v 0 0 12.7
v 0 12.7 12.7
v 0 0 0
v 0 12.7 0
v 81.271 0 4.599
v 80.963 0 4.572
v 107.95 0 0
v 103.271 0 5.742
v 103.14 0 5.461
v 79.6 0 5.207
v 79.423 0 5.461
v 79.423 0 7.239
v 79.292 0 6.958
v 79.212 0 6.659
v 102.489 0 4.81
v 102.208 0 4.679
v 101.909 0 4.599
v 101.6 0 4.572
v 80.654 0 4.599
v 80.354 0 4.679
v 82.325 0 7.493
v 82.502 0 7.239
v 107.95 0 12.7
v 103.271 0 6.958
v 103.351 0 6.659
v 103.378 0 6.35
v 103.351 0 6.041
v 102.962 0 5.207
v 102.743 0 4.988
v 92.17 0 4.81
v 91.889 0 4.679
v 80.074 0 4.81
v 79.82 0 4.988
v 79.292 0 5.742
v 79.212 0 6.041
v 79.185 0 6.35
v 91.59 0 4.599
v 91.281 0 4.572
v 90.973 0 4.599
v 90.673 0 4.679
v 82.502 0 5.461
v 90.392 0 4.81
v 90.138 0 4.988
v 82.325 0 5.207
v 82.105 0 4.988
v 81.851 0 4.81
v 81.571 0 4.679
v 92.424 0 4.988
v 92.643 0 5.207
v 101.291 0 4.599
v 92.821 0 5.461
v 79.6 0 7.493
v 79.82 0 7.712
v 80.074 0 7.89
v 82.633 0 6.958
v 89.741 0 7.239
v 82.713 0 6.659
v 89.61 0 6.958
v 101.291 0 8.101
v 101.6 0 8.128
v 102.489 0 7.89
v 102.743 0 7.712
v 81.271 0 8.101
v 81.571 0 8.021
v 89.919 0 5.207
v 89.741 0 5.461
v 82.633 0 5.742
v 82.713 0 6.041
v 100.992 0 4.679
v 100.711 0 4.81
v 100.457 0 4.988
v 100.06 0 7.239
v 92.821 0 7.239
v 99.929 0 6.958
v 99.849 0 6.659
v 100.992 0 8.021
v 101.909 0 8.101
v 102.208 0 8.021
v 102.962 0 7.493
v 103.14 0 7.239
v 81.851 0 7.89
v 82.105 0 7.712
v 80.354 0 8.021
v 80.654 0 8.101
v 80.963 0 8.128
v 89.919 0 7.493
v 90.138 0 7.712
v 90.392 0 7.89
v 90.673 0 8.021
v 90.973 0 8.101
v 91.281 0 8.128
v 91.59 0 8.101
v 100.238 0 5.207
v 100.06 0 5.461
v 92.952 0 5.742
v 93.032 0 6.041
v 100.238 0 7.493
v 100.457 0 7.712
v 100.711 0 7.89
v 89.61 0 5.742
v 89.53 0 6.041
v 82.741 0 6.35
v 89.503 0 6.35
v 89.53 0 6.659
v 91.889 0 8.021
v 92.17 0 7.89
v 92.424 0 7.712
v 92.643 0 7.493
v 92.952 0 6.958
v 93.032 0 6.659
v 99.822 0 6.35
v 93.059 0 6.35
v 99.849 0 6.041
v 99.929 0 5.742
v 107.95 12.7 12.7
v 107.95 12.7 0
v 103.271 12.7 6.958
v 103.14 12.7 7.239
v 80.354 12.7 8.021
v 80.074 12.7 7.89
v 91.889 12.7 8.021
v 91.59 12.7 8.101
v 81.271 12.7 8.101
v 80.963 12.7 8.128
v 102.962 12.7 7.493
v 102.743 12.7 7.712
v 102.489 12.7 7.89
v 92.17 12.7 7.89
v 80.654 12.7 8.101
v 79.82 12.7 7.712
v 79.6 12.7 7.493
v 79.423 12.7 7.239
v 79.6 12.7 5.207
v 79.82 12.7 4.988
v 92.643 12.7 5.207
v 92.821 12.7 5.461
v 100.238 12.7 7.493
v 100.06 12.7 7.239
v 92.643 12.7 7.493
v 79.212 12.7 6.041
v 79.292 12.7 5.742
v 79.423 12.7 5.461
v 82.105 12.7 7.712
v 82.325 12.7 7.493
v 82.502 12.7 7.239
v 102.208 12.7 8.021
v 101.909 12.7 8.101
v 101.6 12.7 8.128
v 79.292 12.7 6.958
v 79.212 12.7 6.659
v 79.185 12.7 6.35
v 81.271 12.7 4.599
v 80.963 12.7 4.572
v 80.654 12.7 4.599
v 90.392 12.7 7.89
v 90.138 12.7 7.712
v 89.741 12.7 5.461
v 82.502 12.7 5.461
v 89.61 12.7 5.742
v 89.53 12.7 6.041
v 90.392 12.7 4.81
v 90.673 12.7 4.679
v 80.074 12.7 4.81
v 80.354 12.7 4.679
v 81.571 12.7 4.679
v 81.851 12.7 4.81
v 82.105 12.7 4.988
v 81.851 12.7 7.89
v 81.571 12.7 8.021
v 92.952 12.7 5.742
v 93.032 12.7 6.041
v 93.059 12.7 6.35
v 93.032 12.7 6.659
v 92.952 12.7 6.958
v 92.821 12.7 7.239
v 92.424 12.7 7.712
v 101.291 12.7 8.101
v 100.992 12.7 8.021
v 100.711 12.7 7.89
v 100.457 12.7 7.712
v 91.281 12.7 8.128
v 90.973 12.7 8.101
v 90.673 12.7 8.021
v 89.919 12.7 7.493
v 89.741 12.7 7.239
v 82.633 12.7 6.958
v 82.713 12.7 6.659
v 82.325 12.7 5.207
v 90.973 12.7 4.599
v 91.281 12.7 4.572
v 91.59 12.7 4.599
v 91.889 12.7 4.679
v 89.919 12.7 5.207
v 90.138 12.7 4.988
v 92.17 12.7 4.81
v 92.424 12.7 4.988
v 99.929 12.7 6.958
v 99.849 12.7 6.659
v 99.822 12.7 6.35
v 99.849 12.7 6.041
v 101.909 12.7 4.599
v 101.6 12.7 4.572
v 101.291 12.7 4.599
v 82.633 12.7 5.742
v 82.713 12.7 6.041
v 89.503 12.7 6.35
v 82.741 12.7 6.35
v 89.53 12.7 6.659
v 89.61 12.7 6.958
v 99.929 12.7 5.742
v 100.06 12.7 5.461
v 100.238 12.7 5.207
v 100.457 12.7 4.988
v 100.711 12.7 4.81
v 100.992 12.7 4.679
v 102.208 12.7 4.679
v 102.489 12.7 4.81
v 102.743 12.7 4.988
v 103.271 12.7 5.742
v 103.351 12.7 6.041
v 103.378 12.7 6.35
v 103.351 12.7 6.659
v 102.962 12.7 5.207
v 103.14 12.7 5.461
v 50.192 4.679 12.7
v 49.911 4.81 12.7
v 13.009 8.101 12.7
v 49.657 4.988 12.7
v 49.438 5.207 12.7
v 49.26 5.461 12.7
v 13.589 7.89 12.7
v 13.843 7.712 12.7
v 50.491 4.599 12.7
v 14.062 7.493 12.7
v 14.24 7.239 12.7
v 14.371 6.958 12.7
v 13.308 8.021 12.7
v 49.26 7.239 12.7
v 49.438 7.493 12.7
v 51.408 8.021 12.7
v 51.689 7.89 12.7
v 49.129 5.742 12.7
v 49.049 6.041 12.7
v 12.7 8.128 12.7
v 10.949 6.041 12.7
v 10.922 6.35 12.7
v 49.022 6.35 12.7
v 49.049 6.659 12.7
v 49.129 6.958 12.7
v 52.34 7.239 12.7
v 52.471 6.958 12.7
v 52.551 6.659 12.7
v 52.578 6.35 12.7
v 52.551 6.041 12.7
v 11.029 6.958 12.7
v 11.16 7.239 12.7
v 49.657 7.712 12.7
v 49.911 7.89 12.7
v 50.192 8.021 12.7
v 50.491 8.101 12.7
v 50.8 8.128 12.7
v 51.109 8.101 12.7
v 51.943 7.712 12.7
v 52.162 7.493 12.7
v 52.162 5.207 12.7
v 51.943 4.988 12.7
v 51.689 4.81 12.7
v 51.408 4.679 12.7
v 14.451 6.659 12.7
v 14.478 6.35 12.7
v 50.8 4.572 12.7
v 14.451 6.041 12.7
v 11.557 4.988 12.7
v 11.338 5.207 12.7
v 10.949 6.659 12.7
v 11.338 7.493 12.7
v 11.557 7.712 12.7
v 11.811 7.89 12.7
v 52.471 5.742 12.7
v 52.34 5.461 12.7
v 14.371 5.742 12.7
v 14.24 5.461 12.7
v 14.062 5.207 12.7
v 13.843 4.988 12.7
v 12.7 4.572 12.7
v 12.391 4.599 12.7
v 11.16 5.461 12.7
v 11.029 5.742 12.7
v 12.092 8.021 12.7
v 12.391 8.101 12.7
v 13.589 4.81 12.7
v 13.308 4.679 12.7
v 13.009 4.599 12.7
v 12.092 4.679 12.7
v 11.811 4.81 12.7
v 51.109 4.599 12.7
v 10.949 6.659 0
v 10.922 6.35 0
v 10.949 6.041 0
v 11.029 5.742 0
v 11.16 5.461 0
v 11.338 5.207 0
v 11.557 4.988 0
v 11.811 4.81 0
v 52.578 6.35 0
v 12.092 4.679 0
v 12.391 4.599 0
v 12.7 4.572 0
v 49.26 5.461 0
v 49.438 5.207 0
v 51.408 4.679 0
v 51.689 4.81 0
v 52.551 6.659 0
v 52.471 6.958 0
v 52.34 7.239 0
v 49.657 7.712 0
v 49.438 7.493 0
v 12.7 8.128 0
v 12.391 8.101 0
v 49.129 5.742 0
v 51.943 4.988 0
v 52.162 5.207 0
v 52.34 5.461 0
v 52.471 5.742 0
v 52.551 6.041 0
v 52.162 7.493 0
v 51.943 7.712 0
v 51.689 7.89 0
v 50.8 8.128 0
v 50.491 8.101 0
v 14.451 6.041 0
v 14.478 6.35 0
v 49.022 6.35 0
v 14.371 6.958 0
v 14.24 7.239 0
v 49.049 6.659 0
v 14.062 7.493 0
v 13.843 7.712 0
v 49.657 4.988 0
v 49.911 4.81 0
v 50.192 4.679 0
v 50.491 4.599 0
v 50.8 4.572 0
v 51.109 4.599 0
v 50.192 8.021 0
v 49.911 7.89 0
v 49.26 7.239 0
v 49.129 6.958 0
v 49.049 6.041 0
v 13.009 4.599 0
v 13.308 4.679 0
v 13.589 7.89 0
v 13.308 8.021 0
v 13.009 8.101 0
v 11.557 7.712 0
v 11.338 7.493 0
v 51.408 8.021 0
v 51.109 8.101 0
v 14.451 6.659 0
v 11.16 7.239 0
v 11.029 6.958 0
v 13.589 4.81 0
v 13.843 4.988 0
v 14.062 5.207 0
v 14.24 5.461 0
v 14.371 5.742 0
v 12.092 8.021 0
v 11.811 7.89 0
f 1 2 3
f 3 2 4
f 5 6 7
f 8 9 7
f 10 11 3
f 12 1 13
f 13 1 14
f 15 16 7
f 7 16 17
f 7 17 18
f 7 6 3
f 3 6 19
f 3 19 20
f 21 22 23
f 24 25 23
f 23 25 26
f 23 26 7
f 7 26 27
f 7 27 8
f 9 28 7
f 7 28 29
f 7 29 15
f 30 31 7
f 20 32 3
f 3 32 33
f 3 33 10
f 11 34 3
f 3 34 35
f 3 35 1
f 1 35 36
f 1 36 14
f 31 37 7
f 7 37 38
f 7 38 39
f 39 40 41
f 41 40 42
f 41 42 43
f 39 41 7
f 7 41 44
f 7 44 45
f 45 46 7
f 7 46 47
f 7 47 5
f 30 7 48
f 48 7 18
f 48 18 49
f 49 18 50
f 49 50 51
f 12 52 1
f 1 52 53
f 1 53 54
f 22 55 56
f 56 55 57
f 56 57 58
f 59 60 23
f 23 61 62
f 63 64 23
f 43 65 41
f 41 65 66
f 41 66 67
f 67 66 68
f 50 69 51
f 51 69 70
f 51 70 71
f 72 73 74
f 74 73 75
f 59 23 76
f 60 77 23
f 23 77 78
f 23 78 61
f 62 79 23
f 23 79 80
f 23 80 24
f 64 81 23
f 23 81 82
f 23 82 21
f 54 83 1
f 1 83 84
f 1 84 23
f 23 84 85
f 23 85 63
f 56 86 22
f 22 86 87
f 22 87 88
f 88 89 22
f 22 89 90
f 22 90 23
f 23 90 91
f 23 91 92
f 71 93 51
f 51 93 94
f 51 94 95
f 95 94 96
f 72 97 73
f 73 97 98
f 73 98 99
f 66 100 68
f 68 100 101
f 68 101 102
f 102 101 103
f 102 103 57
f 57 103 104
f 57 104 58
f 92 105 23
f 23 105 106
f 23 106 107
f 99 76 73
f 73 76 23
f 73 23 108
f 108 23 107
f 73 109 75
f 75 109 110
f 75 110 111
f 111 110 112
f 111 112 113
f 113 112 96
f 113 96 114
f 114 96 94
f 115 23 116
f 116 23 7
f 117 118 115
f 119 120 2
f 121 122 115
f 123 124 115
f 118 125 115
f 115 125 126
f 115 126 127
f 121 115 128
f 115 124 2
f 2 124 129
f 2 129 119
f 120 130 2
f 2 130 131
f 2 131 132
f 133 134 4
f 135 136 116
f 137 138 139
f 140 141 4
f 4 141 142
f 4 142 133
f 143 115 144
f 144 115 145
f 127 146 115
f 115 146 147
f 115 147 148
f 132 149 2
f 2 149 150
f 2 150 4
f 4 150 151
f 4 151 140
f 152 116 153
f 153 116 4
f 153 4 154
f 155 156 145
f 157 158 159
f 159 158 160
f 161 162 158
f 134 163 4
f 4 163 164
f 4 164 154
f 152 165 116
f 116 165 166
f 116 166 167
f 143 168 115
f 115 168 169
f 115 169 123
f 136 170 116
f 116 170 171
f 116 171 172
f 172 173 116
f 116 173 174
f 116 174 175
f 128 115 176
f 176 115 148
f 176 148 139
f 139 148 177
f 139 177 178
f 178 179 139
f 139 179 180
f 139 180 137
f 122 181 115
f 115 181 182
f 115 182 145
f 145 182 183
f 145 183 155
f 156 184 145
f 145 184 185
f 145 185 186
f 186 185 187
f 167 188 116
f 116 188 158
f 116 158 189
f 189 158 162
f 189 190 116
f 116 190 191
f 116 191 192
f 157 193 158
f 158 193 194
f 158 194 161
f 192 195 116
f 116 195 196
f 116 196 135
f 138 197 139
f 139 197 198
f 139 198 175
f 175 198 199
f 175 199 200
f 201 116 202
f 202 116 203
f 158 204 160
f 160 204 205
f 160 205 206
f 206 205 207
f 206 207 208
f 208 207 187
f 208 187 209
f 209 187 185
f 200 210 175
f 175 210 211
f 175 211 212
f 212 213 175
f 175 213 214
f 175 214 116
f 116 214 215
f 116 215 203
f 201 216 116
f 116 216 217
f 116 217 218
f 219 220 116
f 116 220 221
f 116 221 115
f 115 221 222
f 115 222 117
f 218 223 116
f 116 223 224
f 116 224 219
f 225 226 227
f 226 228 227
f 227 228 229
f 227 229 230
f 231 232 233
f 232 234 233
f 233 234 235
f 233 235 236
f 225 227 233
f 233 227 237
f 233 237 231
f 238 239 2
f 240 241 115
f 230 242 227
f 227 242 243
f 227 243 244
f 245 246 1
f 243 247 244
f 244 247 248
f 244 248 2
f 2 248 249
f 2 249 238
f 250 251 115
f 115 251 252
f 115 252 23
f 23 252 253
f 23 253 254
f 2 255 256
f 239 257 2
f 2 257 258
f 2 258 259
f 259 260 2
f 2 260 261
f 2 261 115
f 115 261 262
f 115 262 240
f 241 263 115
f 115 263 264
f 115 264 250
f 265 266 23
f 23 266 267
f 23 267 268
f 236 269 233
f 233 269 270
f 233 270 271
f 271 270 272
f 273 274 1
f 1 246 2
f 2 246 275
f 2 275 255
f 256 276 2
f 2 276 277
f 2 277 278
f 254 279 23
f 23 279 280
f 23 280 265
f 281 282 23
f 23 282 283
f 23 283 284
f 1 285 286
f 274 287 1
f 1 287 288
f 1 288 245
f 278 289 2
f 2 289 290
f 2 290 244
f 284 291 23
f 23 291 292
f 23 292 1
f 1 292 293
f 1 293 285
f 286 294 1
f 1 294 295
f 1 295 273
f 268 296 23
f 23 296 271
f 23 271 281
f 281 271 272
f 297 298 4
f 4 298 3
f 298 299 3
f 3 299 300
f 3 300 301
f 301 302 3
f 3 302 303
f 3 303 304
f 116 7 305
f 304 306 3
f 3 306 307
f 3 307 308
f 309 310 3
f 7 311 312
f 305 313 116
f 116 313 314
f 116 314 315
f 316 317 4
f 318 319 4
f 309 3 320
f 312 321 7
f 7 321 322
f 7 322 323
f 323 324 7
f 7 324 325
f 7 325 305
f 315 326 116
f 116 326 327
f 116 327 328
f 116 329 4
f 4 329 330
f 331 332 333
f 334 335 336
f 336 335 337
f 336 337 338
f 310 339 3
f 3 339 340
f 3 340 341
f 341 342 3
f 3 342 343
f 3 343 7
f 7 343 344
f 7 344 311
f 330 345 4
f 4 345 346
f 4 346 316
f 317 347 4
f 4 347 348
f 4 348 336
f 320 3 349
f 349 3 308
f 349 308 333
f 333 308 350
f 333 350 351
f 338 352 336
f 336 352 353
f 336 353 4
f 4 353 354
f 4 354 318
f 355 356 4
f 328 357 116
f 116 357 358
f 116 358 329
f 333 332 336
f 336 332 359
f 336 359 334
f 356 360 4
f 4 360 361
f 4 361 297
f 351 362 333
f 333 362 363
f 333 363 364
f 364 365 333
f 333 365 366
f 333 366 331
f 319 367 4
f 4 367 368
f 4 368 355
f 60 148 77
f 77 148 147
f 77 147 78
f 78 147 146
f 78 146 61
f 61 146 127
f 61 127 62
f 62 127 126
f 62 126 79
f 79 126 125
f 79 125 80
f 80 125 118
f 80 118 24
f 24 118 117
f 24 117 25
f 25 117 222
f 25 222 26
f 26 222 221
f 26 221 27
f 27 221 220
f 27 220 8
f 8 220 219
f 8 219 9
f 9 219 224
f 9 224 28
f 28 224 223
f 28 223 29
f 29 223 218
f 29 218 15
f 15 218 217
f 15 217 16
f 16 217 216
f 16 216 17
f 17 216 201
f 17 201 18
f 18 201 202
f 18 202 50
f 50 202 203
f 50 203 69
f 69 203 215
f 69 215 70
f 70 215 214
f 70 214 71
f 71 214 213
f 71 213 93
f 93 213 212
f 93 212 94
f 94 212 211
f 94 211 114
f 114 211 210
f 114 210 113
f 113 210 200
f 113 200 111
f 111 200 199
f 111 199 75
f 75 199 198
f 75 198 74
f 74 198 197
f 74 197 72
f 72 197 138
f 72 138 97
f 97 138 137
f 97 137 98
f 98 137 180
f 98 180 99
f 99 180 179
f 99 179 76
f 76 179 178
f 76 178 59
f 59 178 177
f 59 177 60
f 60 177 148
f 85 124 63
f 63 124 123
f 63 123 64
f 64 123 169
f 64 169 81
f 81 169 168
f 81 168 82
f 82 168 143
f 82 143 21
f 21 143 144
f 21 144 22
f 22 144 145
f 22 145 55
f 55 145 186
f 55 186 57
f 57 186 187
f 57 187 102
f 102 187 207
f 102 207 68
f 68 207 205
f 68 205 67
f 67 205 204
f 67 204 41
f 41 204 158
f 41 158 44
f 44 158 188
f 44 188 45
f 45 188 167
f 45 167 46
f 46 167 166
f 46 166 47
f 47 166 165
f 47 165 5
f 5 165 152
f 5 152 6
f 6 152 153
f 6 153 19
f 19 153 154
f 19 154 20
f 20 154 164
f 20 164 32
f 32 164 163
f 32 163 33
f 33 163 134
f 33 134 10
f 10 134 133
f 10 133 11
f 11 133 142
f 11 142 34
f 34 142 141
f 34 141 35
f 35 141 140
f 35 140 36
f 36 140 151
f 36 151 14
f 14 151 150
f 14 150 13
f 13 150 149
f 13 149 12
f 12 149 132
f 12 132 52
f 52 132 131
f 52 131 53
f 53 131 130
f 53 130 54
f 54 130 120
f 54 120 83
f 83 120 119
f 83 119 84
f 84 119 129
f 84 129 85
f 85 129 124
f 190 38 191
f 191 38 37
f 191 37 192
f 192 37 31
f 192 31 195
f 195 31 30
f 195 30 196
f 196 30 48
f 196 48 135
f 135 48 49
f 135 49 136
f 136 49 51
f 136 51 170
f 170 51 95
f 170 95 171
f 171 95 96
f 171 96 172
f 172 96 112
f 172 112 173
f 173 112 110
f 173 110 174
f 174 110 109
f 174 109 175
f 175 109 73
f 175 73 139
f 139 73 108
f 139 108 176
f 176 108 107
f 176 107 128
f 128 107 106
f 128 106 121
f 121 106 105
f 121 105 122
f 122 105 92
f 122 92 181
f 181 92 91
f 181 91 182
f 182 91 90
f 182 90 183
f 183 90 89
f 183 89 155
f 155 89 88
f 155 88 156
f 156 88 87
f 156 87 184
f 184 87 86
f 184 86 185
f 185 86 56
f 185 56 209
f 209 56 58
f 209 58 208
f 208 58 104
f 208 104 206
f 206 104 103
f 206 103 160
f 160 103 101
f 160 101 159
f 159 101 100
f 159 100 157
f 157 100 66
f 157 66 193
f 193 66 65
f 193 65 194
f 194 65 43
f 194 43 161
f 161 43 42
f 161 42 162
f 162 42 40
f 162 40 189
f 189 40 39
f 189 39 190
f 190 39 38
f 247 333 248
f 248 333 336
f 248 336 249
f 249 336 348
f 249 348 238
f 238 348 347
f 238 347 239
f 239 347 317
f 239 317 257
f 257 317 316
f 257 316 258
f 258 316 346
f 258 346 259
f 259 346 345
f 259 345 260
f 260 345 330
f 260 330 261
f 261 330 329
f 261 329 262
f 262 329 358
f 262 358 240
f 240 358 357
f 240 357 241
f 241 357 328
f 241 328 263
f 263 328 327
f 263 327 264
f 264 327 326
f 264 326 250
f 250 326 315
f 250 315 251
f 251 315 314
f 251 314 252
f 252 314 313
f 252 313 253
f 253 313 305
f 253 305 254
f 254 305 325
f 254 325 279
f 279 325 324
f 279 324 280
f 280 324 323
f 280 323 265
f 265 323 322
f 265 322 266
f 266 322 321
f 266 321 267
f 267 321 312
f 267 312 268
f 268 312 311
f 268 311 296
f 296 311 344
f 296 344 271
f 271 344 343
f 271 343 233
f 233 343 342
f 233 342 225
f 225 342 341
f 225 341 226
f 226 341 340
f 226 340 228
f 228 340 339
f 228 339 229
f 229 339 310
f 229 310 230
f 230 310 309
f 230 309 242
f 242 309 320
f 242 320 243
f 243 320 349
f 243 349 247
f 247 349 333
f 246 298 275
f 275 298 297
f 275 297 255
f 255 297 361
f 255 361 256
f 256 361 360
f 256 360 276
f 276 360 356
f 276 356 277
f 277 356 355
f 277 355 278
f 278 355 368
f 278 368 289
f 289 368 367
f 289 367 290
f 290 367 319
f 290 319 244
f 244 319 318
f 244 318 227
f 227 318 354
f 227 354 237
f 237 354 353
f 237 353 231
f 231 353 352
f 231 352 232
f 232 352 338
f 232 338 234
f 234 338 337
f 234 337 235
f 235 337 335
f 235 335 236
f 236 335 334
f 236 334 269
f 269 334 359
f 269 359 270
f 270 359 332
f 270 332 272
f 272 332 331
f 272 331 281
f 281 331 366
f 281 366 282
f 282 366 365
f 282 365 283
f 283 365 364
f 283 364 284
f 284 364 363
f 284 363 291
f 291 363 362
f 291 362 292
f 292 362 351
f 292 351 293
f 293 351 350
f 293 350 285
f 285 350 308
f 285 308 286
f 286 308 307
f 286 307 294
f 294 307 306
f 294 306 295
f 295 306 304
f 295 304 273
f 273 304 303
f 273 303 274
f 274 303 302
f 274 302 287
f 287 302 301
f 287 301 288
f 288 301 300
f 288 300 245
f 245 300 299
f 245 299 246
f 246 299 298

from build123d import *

# Parameters (mm, degrees)
SKETCH1_W           = 107.95
SKETCH1_H           = 12.7
BOSS_EXTRUDE1_DEPTH = 12.7
SKETCH2_R           = 1.778
CUT_EXTRUDE1_DEPTH  = 12.7
SKETCH3_R           = 1.778
CUT_EXTRUDE2_DEPTH  = 12.7
SKETCH4_R           = 1.778
CUT_EXTRUDE3_DEPTH  = 12.7


with BuildPart() as part:
    # Sketch1 → Boss-Extrude1 (new body)
    with BuildSketch(Plane.XY):
        with Locations((53.975, 6.35)):
            Rectangle(SKETCH1_W, SKETCH1_H)
    extrude(amount=BOSS_EXTRUDE1_DEPTH)

    # Sketch2 → Cut-Extrude1 (cut)
    with BuildSketch(Plane(origin=(0, 12.7, 0), x_dir=(1, 0, 0), z_dir=(0, 1, 0))):
        with Locations((101.6, -6.35)):
            Circle(SKETCH2_R)
        with Locations((80.9625, -6.35)):
            Circle(SKETCH2_R)
    extrude(amount=-CUT_EXTRUDE1_DEPTH, mode=Mode.SUBTRACT)

    # Sketch3 → Cut-Extrude2 (cut)
    with BuildSketch(Plane.XZ):
        with Locations((91.28125, 6.35)):
            Circle(SKETCH3_R)
    extrude(amount=-CUT_EXTRUDE2_DEPTH, mode=Mode.SUBTRACT)

    # Sketch4 → Cut-Extrude3 (cut)
    with BuildSketch(Plane(origin=(0, 0, 0), x_dir=(-1, 0, 0), z_dir=(0, 0, -1))):
        with Locations((-12.7, 6.35)):
            Circle(SKETCH4_R)
        with Locations((-50.8, 6.35)):
            Circle(SKETCH4_R)
    extrude(amount=-CUT_EXTRUDE3_DEPTH, mode=Mode.SUBTRACT)


solid = part.part
